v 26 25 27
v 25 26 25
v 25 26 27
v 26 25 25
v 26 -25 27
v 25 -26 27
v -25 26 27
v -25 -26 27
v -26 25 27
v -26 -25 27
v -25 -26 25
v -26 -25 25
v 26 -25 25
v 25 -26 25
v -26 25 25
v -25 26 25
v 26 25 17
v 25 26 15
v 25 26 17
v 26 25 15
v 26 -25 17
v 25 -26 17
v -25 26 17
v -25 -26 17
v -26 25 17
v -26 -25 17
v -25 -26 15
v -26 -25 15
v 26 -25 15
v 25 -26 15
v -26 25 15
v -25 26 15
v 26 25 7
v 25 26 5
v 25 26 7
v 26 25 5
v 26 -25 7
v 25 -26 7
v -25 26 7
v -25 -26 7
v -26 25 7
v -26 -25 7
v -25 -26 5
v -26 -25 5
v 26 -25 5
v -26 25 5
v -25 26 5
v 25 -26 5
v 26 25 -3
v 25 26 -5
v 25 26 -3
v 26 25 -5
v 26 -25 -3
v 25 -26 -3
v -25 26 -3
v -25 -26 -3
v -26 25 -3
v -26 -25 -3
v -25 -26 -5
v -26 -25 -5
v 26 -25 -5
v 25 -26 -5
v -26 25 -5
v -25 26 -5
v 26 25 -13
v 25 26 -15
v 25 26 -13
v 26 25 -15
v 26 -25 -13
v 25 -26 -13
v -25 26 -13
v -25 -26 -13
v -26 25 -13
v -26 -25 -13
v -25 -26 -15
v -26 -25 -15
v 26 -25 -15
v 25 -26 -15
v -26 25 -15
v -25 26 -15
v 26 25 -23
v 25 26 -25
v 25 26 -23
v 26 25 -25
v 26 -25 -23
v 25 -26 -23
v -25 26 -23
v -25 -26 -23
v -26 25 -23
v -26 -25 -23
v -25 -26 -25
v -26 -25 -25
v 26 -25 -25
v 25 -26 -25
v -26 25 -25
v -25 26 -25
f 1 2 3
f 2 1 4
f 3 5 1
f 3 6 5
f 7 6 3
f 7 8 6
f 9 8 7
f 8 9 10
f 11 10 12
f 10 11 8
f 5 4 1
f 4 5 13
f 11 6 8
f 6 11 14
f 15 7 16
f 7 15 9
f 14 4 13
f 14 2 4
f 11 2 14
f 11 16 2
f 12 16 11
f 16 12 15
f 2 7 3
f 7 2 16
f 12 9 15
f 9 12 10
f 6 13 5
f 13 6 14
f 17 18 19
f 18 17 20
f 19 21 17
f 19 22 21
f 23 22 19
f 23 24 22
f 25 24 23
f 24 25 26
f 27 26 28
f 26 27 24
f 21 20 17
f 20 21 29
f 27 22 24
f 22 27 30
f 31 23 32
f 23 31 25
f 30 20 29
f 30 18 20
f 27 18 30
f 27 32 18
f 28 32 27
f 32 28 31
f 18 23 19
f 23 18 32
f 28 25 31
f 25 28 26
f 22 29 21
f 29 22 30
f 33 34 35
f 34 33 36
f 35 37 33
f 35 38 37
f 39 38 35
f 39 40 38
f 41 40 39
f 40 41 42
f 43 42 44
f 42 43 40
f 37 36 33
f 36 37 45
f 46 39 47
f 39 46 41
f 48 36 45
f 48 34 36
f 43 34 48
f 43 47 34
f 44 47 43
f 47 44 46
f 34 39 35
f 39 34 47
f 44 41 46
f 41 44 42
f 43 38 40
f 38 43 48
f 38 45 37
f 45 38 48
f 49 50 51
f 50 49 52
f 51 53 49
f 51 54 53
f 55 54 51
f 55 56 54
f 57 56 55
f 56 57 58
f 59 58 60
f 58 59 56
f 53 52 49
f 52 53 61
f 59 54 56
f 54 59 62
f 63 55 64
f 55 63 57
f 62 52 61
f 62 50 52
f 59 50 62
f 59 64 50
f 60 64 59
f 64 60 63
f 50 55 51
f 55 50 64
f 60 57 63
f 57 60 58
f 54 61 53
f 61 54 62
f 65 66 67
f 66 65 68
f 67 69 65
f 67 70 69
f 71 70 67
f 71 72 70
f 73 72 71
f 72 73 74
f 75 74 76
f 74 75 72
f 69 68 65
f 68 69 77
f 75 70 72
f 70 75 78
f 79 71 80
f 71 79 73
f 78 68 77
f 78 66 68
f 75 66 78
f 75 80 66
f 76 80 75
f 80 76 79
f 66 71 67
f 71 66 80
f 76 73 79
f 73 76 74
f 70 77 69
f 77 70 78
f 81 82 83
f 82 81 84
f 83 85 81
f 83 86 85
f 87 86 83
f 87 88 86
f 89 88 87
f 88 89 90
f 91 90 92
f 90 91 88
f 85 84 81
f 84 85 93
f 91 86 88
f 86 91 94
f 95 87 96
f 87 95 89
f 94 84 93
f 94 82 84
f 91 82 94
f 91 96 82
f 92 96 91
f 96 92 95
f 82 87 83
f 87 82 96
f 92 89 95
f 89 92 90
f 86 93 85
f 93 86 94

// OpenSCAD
// Parameters for the flat plates
plate_width = 50;  // Width of the plate
plate_length = 50; // Length of the plate
plate_thickness = 2; // Reduced thickness of the plate to match the original model
plate_spacing = 10; // Adjusted spacing between plates to match the original model

// Function to create a flat plate with tapered edges
module flat_plate() {
    linear_extrude(height = plate_thickness)
        offset(r = 1)  // Taper the edges slightly
            square([plate_width, plate_length], center = true);
}

// Assembly of the flexible coupling
module flexible_coupling() {
    // Layer 1: Topmost flat plate
    translate([0, 0, plate_spacing * 2.5])
        flat_plate();

    // Layer 2: Second flat plate
    translate([0, 0, plate_spacing * 1.5])
        flat_plate();

    // Layer 3: Third flat plate
    translate([0, 0, plate_spacing * 0.5])
        flat_plate();

    // Layer 4: Fourth flat plate
    translate([0, 0, -plate_spacing * 0.5])
        flat_plate();

    // Layer 5: Fifth flat plate
    translate([0, 0, -plate_spacing * 1.5])
        flat_plate();

    // Layer 6: Bottommost flat plate
    translate([0, 0, -plate_spacing * 2.5])
        flat_plate();
}

// Render the flexible coupling
flexible_coupling();
